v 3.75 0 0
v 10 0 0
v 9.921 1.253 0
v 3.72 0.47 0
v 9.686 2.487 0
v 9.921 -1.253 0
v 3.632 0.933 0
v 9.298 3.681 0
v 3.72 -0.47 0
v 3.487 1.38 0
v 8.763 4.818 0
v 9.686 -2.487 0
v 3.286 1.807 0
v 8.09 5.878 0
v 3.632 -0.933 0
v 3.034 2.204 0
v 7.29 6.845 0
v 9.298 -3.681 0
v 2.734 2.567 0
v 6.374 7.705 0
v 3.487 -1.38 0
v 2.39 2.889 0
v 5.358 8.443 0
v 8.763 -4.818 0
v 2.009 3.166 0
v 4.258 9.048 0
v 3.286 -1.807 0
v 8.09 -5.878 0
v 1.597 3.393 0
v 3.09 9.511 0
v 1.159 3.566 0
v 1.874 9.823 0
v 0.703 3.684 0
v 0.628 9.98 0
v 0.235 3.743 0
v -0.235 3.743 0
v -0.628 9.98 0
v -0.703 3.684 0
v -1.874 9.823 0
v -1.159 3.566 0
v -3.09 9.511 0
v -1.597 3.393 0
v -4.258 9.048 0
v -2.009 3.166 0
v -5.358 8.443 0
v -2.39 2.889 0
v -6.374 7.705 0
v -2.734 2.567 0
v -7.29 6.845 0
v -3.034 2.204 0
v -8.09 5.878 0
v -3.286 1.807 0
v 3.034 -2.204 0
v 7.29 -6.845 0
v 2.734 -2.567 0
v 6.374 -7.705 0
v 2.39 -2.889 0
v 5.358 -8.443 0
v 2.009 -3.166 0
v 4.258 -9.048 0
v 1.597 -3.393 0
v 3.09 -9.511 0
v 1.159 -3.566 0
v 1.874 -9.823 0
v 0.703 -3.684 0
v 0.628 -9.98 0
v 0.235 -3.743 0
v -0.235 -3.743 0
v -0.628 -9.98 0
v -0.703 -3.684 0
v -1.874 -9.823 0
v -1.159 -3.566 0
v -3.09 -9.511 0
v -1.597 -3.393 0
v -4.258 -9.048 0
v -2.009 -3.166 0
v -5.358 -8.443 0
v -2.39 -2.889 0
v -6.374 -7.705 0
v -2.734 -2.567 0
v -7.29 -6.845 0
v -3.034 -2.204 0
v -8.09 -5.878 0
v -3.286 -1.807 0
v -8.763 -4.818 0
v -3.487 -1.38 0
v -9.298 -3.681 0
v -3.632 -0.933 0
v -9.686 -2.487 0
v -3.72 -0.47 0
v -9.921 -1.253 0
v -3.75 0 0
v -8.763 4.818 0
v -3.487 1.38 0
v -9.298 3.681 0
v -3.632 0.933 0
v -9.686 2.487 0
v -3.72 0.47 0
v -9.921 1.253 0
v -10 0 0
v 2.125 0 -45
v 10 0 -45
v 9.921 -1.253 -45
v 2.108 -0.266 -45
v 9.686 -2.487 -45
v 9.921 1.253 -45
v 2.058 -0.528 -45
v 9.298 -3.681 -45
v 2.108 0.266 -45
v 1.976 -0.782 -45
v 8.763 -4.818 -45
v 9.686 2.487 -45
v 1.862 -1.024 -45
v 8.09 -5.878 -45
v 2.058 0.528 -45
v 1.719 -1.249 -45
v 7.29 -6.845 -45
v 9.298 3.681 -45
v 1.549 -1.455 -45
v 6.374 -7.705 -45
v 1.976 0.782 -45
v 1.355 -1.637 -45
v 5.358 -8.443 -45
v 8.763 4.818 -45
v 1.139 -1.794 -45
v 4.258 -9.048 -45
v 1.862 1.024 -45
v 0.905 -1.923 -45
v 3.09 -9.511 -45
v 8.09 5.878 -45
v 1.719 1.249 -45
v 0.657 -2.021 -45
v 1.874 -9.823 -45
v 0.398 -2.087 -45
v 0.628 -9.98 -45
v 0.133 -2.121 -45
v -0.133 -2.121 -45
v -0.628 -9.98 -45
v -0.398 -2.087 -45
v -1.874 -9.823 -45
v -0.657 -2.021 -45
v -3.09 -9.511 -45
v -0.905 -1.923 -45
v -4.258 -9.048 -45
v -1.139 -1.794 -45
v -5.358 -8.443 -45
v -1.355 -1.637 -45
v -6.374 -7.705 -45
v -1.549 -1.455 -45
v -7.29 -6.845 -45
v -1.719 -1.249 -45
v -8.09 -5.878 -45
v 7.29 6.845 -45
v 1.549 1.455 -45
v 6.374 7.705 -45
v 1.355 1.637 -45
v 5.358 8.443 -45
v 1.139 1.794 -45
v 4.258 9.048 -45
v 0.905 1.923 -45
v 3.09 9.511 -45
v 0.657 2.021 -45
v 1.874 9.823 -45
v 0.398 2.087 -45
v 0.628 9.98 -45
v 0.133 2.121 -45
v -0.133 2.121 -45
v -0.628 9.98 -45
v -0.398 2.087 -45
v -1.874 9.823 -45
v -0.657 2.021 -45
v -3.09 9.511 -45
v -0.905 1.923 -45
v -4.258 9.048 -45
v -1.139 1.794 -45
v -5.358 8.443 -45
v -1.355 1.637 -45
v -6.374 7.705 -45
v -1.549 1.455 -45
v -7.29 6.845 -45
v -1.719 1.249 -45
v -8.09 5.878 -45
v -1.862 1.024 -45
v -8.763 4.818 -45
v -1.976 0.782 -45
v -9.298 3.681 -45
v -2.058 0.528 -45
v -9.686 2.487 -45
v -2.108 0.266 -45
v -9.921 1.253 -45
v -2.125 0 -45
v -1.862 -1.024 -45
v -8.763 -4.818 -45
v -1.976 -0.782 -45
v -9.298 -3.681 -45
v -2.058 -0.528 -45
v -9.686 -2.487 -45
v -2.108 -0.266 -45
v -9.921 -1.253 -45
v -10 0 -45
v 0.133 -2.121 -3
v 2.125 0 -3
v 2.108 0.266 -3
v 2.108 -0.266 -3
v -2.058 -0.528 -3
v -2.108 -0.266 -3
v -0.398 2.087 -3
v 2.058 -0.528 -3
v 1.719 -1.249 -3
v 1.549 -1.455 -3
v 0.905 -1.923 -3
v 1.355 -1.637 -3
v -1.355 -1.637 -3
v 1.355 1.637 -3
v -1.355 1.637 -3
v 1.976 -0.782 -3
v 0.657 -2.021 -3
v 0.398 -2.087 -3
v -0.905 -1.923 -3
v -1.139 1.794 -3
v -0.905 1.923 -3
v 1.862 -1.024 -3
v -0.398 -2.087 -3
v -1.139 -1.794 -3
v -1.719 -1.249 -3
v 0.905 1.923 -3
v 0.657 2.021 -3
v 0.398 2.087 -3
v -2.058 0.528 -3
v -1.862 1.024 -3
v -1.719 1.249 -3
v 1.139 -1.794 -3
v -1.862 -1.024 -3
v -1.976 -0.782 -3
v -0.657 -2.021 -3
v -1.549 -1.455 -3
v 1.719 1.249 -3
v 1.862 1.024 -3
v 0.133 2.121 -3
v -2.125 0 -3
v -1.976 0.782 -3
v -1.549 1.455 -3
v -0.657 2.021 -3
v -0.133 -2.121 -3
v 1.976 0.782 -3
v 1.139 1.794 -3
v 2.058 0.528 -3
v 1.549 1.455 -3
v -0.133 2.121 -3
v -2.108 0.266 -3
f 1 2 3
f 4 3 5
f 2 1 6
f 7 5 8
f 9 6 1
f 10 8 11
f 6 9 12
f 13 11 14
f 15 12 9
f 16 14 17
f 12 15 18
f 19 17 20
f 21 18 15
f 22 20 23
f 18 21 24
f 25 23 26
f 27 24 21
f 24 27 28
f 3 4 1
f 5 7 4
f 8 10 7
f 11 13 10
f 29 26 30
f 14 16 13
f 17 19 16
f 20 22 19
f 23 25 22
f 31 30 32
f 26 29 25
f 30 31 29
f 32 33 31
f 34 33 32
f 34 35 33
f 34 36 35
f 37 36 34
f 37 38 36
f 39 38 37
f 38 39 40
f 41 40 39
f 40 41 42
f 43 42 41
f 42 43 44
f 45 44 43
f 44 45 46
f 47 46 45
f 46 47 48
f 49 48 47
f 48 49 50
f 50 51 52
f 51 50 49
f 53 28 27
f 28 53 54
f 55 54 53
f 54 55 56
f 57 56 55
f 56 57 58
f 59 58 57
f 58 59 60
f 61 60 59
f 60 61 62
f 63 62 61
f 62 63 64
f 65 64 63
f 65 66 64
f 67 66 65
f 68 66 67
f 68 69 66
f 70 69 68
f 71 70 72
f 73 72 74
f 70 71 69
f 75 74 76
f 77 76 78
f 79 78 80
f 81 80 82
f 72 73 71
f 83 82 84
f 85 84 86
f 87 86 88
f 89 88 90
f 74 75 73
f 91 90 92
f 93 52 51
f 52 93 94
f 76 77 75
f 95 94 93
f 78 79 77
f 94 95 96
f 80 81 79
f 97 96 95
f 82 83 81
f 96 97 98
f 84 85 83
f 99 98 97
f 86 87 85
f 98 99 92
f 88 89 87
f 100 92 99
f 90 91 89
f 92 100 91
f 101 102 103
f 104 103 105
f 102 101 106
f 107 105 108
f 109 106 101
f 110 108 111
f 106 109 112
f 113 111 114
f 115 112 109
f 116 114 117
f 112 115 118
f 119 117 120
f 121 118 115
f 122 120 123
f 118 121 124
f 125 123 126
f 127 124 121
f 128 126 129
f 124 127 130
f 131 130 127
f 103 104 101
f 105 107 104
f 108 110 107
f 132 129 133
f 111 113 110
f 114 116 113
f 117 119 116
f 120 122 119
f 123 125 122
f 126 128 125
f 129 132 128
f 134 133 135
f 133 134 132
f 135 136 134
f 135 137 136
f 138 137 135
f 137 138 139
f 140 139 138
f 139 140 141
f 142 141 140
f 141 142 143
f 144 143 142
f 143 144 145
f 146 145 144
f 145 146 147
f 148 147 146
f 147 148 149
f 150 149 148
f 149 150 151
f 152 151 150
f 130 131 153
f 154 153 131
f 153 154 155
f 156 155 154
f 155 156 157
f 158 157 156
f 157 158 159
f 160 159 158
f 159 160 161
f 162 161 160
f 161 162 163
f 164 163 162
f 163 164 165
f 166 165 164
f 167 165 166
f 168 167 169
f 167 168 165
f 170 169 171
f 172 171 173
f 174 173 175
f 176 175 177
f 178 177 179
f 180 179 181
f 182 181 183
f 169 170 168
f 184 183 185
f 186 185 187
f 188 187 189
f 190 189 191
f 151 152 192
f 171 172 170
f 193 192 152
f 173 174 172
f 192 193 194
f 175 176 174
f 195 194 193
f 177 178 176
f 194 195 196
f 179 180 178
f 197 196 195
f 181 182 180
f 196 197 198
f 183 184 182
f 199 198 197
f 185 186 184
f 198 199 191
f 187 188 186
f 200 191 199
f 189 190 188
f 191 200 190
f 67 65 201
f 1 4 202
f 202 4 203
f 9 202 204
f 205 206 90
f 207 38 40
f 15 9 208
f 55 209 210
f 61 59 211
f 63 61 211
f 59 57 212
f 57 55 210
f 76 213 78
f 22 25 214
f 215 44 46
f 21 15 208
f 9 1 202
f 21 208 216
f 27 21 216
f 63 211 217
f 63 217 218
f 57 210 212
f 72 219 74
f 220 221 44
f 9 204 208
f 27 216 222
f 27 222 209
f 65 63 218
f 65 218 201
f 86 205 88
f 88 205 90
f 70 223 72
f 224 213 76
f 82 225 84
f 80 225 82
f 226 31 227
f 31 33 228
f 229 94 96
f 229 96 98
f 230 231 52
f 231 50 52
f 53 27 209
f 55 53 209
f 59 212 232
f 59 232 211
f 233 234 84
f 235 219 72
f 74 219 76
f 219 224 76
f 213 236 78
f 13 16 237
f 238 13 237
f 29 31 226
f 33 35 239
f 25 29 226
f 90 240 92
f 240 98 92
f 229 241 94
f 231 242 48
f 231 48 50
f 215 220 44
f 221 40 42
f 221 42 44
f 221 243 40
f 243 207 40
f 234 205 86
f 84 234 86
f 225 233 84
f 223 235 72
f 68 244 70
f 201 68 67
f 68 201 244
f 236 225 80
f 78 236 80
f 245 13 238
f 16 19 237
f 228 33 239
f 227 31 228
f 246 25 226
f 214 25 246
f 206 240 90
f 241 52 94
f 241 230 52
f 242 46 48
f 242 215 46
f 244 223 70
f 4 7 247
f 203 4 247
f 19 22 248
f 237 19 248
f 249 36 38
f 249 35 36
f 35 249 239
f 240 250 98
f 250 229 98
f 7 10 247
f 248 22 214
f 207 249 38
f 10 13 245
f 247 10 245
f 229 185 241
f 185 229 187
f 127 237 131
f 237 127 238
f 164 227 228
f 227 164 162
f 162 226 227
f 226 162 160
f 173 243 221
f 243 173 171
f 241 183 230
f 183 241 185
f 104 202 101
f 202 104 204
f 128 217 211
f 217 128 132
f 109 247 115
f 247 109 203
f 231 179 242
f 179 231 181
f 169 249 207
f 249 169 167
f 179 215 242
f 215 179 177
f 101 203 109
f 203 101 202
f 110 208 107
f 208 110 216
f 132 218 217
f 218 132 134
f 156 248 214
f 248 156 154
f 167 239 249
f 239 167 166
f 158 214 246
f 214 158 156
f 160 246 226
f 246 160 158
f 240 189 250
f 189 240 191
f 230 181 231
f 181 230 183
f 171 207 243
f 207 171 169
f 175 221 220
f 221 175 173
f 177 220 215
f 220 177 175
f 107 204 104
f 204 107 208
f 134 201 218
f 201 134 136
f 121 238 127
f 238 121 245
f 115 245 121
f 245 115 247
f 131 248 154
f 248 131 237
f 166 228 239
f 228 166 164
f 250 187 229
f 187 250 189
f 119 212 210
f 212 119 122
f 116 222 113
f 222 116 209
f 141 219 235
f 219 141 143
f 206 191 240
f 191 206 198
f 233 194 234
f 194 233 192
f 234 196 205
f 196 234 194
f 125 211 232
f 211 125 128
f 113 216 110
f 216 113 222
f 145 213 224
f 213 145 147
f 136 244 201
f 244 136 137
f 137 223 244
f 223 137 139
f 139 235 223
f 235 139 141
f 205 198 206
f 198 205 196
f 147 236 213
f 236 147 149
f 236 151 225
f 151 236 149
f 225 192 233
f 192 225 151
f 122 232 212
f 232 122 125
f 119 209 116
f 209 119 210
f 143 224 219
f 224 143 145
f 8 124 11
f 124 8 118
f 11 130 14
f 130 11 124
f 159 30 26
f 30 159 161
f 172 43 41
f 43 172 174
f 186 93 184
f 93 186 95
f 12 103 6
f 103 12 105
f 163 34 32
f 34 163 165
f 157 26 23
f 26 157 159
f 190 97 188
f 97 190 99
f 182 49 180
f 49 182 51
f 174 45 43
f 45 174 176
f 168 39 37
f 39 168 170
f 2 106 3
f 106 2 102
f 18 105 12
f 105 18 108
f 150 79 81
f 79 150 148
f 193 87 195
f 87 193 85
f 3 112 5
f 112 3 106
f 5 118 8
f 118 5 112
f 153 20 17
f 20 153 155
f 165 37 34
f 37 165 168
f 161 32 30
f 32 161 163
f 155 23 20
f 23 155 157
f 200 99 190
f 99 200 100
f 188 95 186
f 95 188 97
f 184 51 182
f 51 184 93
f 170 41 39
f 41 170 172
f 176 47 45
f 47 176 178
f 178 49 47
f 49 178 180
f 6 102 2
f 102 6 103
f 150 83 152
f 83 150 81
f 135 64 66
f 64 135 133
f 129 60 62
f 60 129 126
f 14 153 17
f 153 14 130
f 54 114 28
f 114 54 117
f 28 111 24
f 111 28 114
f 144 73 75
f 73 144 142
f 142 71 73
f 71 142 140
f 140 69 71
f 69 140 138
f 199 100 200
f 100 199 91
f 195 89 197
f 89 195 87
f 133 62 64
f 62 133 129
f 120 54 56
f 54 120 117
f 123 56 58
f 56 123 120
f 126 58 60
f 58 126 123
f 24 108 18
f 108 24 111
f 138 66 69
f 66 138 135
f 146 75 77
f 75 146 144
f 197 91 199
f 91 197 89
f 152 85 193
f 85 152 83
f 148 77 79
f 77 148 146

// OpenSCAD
$fn = 50;


difference() {
	union() {
		translate(v = [0, 0, -45.0000000000]) {
			cylinder(h = 45, r = 10.0000000000);
		}
		cylinder(h = 0, r = 20.0000000000);
	}
	union() {
		translate(v = [0, 0, 0]) {
			rotate(a = [0, 0, 0]) {
				difference() {
					union() {
						#translate(v = [0, 0, -45.0000000000]) {
							cylinder(h = 45, r = 2.0000000000);
						}
						#translate(v = [0, 0, -3]) {
							cylinder(h = 3, r1 = 2.1250000000, r2 = 3.7500000000);
						}
						#translate(v = [0, 0, -45.0000000000]) {
							cylinder(h = 45, r = 2.1250000000);
						}
						#translate(v = [0, 0, -45.0000000000]) {
							cylinder(h = 45, r = 2.0000000000);
						}
					}
					union();
				}
			}
		}
	}
}
